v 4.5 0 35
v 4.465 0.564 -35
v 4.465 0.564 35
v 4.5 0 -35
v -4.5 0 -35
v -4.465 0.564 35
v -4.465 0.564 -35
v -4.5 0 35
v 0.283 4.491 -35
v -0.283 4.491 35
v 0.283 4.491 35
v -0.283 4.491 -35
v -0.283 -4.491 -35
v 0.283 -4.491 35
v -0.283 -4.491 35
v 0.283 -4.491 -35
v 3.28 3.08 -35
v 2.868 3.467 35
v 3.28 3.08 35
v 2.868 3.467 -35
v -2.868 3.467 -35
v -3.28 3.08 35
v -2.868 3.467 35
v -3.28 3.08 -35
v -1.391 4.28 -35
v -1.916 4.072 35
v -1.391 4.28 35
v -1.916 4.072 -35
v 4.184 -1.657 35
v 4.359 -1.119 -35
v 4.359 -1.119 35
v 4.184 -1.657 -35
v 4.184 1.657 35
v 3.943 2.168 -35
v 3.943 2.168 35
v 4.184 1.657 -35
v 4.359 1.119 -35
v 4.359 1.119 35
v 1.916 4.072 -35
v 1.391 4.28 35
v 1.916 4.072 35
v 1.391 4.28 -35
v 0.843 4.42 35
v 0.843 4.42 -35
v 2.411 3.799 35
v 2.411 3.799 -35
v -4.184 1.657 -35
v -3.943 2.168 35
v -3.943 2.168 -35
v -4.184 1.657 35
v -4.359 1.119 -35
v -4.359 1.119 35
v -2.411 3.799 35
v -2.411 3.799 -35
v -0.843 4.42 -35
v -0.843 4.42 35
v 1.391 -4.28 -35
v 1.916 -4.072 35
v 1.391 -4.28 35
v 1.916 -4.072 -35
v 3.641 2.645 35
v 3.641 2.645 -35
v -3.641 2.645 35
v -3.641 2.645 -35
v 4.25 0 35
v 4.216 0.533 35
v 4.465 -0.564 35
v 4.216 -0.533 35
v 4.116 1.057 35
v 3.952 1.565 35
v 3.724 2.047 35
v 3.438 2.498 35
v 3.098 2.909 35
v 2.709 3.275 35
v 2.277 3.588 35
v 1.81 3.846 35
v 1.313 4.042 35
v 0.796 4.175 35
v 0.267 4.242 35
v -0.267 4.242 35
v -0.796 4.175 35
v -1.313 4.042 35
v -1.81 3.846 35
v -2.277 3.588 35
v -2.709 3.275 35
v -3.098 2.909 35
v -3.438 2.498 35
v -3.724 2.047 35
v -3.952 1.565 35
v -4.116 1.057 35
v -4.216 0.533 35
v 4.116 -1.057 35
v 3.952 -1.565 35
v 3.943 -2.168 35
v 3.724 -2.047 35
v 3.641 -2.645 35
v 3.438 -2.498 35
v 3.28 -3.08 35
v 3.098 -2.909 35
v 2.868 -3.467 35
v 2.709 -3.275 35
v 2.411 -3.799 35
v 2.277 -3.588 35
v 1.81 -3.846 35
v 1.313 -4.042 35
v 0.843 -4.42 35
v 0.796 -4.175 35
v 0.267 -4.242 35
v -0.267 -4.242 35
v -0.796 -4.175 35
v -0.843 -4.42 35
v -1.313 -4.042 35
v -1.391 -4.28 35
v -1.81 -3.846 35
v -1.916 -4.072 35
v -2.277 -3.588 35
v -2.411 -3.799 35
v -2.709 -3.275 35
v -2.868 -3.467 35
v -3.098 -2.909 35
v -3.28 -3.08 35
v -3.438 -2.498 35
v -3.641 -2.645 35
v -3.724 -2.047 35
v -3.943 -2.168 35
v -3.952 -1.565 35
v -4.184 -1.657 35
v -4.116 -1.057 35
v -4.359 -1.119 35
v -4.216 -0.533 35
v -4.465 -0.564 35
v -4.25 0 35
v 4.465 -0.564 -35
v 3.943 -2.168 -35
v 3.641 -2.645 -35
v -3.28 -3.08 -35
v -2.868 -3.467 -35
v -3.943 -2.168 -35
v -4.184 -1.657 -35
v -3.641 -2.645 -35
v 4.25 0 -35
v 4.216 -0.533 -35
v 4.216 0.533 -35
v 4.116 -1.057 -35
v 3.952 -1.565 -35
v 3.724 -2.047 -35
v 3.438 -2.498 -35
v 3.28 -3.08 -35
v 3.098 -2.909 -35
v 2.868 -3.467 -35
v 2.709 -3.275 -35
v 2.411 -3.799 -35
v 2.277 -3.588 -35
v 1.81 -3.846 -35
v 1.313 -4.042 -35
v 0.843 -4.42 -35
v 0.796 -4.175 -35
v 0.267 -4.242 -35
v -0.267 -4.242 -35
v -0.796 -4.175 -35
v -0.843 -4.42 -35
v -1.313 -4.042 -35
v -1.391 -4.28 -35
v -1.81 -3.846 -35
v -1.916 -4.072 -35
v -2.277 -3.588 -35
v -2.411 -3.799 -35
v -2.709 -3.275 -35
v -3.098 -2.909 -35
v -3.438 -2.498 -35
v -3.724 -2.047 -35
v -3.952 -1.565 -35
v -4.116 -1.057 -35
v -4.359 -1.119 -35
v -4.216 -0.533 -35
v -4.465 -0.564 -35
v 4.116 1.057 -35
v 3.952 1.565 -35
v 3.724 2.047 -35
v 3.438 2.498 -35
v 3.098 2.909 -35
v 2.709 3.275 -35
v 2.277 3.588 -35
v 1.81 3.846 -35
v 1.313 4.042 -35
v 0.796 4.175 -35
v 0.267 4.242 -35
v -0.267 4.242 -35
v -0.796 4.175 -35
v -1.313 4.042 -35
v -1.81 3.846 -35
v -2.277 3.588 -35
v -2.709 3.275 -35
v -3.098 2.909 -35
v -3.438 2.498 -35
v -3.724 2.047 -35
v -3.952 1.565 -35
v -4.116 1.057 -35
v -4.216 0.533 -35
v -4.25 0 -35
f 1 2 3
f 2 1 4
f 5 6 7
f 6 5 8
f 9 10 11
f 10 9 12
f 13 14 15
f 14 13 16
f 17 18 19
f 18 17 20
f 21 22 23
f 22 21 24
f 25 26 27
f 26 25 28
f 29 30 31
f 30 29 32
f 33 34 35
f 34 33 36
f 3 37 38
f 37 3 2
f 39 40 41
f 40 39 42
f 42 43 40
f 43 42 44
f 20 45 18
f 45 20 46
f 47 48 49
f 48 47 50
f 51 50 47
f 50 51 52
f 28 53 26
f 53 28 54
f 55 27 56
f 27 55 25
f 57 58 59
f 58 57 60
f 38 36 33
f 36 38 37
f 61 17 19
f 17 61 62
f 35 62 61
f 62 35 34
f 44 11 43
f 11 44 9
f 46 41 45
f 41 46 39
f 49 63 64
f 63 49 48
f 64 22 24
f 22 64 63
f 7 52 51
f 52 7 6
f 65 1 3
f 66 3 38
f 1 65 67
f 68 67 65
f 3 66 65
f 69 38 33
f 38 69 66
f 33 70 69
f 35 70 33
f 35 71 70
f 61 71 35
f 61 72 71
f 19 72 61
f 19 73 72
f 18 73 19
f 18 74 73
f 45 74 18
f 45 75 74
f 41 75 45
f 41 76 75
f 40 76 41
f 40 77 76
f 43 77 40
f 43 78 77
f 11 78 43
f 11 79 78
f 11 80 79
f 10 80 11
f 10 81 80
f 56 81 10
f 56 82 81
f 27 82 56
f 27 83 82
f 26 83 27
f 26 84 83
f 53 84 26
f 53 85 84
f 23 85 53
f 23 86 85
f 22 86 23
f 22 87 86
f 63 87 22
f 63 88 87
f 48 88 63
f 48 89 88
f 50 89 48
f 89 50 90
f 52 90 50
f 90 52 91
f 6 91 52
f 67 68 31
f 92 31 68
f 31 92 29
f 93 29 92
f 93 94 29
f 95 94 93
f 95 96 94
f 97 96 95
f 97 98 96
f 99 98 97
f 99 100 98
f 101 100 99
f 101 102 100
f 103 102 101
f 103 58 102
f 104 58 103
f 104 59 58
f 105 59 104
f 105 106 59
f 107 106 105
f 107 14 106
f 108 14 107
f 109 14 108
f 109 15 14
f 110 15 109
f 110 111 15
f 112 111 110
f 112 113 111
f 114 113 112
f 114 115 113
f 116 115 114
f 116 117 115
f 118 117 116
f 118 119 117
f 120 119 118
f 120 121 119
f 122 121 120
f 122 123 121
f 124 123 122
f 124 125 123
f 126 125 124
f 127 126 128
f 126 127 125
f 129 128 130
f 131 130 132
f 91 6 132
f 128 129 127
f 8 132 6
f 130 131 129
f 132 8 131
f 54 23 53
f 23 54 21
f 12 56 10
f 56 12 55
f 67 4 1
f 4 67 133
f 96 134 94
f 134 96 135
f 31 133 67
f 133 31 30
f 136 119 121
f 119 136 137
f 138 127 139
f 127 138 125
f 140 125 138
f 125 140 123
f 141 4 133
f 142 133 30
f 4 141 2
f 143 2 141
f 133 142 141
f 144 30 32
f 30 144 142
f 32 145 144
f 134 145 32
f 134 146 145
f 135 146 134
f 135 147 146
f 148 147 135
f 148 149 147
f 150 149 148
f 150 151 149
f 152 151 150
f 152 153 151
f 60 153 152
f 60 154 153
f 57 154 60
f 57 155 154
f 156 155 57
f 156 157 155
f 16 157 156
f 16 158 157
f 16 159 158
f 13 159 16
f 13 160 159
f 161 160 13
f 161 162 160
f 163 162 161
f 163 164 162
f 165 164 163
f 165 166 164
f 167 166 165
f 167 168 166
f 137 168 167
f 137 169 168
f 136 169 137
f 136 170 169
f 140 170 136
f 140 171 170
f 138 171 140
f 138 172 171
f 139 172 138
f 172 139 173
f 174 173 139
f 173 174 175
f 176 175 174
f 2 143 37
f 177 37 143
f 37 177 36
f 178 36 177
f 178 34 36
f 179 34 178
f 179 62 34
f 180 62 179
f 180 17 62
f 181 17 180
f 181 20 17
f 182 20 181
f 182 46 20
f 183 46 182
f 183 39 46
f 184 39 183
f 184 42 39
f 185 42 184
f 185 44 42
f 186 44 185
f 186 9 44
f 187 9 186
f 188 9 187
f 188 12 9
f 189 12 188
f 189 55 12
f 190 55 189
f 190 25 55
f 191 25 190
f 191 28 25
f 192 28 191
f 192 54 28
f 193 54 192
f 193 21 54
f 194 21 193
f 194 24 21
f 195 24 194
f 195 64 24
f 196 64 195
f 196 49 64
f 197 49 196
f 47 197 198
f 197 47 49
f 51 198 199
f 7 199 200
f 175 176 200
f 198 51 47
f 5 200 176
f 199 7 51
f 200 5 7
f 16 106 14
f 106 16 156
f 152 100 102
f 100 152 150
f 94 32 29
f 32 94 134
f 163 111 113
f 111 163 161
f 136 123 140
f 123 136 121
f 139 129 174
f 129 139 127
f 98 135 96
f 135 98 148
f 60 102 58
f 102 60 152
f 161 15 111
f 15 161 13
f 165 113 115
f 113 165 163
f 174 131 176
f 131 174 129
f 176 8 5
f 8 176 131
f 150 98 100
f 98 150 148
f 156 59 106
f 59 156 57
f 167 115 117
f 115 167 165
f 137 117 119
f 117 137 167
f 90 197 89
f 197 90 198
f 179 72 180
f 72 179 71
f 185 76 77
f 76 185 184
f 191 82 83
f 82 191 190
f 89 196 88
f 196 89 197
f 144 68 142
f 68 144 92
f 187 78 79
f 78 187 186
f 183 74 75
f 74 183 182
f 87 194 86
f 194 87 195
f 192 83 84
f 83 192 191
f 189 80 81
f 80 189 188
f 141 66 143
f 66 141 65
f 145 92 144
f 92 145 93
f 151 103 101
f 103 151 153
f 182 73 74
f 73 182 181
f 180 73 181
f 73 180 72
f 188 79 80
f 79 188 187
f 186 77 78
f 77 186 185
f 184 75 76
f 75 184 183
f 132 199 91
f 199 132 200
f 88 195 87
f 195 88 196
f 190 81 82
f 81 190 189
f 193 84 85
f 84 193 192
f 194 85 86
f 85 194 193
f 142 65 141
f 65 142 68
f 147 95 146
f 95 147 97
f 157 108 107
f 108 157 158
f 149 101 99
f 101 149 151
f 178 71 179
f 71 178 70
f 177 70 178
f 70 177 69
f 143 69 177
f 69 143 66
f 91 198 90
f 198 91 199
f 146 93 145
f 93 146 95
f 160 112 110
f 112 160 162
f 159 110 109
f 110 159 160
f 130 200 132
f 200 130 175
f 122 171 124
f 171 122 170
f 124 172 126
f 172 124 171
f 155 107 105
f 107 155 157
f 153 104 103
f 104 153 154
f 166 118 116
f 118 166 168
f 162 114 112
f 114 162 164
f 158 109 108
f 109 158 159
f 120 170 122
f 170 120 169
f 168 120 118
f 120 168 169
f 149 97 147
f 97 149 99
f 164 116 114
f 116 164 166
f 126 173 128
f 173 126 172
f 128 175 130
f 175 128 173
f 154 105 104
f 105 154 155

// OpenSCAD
$fn = 50;


difference() {
	union() {
		translate(v = [0, 0, -35.0000000000]) {
			cylinder(h = 70, r = 4.5000000000);
		}
	}
	union() {
		translate(v = [0, 0, -100.0000000000]) {
			cylinder(h = 200, r = 4.2500000000);
		}
	}
}
